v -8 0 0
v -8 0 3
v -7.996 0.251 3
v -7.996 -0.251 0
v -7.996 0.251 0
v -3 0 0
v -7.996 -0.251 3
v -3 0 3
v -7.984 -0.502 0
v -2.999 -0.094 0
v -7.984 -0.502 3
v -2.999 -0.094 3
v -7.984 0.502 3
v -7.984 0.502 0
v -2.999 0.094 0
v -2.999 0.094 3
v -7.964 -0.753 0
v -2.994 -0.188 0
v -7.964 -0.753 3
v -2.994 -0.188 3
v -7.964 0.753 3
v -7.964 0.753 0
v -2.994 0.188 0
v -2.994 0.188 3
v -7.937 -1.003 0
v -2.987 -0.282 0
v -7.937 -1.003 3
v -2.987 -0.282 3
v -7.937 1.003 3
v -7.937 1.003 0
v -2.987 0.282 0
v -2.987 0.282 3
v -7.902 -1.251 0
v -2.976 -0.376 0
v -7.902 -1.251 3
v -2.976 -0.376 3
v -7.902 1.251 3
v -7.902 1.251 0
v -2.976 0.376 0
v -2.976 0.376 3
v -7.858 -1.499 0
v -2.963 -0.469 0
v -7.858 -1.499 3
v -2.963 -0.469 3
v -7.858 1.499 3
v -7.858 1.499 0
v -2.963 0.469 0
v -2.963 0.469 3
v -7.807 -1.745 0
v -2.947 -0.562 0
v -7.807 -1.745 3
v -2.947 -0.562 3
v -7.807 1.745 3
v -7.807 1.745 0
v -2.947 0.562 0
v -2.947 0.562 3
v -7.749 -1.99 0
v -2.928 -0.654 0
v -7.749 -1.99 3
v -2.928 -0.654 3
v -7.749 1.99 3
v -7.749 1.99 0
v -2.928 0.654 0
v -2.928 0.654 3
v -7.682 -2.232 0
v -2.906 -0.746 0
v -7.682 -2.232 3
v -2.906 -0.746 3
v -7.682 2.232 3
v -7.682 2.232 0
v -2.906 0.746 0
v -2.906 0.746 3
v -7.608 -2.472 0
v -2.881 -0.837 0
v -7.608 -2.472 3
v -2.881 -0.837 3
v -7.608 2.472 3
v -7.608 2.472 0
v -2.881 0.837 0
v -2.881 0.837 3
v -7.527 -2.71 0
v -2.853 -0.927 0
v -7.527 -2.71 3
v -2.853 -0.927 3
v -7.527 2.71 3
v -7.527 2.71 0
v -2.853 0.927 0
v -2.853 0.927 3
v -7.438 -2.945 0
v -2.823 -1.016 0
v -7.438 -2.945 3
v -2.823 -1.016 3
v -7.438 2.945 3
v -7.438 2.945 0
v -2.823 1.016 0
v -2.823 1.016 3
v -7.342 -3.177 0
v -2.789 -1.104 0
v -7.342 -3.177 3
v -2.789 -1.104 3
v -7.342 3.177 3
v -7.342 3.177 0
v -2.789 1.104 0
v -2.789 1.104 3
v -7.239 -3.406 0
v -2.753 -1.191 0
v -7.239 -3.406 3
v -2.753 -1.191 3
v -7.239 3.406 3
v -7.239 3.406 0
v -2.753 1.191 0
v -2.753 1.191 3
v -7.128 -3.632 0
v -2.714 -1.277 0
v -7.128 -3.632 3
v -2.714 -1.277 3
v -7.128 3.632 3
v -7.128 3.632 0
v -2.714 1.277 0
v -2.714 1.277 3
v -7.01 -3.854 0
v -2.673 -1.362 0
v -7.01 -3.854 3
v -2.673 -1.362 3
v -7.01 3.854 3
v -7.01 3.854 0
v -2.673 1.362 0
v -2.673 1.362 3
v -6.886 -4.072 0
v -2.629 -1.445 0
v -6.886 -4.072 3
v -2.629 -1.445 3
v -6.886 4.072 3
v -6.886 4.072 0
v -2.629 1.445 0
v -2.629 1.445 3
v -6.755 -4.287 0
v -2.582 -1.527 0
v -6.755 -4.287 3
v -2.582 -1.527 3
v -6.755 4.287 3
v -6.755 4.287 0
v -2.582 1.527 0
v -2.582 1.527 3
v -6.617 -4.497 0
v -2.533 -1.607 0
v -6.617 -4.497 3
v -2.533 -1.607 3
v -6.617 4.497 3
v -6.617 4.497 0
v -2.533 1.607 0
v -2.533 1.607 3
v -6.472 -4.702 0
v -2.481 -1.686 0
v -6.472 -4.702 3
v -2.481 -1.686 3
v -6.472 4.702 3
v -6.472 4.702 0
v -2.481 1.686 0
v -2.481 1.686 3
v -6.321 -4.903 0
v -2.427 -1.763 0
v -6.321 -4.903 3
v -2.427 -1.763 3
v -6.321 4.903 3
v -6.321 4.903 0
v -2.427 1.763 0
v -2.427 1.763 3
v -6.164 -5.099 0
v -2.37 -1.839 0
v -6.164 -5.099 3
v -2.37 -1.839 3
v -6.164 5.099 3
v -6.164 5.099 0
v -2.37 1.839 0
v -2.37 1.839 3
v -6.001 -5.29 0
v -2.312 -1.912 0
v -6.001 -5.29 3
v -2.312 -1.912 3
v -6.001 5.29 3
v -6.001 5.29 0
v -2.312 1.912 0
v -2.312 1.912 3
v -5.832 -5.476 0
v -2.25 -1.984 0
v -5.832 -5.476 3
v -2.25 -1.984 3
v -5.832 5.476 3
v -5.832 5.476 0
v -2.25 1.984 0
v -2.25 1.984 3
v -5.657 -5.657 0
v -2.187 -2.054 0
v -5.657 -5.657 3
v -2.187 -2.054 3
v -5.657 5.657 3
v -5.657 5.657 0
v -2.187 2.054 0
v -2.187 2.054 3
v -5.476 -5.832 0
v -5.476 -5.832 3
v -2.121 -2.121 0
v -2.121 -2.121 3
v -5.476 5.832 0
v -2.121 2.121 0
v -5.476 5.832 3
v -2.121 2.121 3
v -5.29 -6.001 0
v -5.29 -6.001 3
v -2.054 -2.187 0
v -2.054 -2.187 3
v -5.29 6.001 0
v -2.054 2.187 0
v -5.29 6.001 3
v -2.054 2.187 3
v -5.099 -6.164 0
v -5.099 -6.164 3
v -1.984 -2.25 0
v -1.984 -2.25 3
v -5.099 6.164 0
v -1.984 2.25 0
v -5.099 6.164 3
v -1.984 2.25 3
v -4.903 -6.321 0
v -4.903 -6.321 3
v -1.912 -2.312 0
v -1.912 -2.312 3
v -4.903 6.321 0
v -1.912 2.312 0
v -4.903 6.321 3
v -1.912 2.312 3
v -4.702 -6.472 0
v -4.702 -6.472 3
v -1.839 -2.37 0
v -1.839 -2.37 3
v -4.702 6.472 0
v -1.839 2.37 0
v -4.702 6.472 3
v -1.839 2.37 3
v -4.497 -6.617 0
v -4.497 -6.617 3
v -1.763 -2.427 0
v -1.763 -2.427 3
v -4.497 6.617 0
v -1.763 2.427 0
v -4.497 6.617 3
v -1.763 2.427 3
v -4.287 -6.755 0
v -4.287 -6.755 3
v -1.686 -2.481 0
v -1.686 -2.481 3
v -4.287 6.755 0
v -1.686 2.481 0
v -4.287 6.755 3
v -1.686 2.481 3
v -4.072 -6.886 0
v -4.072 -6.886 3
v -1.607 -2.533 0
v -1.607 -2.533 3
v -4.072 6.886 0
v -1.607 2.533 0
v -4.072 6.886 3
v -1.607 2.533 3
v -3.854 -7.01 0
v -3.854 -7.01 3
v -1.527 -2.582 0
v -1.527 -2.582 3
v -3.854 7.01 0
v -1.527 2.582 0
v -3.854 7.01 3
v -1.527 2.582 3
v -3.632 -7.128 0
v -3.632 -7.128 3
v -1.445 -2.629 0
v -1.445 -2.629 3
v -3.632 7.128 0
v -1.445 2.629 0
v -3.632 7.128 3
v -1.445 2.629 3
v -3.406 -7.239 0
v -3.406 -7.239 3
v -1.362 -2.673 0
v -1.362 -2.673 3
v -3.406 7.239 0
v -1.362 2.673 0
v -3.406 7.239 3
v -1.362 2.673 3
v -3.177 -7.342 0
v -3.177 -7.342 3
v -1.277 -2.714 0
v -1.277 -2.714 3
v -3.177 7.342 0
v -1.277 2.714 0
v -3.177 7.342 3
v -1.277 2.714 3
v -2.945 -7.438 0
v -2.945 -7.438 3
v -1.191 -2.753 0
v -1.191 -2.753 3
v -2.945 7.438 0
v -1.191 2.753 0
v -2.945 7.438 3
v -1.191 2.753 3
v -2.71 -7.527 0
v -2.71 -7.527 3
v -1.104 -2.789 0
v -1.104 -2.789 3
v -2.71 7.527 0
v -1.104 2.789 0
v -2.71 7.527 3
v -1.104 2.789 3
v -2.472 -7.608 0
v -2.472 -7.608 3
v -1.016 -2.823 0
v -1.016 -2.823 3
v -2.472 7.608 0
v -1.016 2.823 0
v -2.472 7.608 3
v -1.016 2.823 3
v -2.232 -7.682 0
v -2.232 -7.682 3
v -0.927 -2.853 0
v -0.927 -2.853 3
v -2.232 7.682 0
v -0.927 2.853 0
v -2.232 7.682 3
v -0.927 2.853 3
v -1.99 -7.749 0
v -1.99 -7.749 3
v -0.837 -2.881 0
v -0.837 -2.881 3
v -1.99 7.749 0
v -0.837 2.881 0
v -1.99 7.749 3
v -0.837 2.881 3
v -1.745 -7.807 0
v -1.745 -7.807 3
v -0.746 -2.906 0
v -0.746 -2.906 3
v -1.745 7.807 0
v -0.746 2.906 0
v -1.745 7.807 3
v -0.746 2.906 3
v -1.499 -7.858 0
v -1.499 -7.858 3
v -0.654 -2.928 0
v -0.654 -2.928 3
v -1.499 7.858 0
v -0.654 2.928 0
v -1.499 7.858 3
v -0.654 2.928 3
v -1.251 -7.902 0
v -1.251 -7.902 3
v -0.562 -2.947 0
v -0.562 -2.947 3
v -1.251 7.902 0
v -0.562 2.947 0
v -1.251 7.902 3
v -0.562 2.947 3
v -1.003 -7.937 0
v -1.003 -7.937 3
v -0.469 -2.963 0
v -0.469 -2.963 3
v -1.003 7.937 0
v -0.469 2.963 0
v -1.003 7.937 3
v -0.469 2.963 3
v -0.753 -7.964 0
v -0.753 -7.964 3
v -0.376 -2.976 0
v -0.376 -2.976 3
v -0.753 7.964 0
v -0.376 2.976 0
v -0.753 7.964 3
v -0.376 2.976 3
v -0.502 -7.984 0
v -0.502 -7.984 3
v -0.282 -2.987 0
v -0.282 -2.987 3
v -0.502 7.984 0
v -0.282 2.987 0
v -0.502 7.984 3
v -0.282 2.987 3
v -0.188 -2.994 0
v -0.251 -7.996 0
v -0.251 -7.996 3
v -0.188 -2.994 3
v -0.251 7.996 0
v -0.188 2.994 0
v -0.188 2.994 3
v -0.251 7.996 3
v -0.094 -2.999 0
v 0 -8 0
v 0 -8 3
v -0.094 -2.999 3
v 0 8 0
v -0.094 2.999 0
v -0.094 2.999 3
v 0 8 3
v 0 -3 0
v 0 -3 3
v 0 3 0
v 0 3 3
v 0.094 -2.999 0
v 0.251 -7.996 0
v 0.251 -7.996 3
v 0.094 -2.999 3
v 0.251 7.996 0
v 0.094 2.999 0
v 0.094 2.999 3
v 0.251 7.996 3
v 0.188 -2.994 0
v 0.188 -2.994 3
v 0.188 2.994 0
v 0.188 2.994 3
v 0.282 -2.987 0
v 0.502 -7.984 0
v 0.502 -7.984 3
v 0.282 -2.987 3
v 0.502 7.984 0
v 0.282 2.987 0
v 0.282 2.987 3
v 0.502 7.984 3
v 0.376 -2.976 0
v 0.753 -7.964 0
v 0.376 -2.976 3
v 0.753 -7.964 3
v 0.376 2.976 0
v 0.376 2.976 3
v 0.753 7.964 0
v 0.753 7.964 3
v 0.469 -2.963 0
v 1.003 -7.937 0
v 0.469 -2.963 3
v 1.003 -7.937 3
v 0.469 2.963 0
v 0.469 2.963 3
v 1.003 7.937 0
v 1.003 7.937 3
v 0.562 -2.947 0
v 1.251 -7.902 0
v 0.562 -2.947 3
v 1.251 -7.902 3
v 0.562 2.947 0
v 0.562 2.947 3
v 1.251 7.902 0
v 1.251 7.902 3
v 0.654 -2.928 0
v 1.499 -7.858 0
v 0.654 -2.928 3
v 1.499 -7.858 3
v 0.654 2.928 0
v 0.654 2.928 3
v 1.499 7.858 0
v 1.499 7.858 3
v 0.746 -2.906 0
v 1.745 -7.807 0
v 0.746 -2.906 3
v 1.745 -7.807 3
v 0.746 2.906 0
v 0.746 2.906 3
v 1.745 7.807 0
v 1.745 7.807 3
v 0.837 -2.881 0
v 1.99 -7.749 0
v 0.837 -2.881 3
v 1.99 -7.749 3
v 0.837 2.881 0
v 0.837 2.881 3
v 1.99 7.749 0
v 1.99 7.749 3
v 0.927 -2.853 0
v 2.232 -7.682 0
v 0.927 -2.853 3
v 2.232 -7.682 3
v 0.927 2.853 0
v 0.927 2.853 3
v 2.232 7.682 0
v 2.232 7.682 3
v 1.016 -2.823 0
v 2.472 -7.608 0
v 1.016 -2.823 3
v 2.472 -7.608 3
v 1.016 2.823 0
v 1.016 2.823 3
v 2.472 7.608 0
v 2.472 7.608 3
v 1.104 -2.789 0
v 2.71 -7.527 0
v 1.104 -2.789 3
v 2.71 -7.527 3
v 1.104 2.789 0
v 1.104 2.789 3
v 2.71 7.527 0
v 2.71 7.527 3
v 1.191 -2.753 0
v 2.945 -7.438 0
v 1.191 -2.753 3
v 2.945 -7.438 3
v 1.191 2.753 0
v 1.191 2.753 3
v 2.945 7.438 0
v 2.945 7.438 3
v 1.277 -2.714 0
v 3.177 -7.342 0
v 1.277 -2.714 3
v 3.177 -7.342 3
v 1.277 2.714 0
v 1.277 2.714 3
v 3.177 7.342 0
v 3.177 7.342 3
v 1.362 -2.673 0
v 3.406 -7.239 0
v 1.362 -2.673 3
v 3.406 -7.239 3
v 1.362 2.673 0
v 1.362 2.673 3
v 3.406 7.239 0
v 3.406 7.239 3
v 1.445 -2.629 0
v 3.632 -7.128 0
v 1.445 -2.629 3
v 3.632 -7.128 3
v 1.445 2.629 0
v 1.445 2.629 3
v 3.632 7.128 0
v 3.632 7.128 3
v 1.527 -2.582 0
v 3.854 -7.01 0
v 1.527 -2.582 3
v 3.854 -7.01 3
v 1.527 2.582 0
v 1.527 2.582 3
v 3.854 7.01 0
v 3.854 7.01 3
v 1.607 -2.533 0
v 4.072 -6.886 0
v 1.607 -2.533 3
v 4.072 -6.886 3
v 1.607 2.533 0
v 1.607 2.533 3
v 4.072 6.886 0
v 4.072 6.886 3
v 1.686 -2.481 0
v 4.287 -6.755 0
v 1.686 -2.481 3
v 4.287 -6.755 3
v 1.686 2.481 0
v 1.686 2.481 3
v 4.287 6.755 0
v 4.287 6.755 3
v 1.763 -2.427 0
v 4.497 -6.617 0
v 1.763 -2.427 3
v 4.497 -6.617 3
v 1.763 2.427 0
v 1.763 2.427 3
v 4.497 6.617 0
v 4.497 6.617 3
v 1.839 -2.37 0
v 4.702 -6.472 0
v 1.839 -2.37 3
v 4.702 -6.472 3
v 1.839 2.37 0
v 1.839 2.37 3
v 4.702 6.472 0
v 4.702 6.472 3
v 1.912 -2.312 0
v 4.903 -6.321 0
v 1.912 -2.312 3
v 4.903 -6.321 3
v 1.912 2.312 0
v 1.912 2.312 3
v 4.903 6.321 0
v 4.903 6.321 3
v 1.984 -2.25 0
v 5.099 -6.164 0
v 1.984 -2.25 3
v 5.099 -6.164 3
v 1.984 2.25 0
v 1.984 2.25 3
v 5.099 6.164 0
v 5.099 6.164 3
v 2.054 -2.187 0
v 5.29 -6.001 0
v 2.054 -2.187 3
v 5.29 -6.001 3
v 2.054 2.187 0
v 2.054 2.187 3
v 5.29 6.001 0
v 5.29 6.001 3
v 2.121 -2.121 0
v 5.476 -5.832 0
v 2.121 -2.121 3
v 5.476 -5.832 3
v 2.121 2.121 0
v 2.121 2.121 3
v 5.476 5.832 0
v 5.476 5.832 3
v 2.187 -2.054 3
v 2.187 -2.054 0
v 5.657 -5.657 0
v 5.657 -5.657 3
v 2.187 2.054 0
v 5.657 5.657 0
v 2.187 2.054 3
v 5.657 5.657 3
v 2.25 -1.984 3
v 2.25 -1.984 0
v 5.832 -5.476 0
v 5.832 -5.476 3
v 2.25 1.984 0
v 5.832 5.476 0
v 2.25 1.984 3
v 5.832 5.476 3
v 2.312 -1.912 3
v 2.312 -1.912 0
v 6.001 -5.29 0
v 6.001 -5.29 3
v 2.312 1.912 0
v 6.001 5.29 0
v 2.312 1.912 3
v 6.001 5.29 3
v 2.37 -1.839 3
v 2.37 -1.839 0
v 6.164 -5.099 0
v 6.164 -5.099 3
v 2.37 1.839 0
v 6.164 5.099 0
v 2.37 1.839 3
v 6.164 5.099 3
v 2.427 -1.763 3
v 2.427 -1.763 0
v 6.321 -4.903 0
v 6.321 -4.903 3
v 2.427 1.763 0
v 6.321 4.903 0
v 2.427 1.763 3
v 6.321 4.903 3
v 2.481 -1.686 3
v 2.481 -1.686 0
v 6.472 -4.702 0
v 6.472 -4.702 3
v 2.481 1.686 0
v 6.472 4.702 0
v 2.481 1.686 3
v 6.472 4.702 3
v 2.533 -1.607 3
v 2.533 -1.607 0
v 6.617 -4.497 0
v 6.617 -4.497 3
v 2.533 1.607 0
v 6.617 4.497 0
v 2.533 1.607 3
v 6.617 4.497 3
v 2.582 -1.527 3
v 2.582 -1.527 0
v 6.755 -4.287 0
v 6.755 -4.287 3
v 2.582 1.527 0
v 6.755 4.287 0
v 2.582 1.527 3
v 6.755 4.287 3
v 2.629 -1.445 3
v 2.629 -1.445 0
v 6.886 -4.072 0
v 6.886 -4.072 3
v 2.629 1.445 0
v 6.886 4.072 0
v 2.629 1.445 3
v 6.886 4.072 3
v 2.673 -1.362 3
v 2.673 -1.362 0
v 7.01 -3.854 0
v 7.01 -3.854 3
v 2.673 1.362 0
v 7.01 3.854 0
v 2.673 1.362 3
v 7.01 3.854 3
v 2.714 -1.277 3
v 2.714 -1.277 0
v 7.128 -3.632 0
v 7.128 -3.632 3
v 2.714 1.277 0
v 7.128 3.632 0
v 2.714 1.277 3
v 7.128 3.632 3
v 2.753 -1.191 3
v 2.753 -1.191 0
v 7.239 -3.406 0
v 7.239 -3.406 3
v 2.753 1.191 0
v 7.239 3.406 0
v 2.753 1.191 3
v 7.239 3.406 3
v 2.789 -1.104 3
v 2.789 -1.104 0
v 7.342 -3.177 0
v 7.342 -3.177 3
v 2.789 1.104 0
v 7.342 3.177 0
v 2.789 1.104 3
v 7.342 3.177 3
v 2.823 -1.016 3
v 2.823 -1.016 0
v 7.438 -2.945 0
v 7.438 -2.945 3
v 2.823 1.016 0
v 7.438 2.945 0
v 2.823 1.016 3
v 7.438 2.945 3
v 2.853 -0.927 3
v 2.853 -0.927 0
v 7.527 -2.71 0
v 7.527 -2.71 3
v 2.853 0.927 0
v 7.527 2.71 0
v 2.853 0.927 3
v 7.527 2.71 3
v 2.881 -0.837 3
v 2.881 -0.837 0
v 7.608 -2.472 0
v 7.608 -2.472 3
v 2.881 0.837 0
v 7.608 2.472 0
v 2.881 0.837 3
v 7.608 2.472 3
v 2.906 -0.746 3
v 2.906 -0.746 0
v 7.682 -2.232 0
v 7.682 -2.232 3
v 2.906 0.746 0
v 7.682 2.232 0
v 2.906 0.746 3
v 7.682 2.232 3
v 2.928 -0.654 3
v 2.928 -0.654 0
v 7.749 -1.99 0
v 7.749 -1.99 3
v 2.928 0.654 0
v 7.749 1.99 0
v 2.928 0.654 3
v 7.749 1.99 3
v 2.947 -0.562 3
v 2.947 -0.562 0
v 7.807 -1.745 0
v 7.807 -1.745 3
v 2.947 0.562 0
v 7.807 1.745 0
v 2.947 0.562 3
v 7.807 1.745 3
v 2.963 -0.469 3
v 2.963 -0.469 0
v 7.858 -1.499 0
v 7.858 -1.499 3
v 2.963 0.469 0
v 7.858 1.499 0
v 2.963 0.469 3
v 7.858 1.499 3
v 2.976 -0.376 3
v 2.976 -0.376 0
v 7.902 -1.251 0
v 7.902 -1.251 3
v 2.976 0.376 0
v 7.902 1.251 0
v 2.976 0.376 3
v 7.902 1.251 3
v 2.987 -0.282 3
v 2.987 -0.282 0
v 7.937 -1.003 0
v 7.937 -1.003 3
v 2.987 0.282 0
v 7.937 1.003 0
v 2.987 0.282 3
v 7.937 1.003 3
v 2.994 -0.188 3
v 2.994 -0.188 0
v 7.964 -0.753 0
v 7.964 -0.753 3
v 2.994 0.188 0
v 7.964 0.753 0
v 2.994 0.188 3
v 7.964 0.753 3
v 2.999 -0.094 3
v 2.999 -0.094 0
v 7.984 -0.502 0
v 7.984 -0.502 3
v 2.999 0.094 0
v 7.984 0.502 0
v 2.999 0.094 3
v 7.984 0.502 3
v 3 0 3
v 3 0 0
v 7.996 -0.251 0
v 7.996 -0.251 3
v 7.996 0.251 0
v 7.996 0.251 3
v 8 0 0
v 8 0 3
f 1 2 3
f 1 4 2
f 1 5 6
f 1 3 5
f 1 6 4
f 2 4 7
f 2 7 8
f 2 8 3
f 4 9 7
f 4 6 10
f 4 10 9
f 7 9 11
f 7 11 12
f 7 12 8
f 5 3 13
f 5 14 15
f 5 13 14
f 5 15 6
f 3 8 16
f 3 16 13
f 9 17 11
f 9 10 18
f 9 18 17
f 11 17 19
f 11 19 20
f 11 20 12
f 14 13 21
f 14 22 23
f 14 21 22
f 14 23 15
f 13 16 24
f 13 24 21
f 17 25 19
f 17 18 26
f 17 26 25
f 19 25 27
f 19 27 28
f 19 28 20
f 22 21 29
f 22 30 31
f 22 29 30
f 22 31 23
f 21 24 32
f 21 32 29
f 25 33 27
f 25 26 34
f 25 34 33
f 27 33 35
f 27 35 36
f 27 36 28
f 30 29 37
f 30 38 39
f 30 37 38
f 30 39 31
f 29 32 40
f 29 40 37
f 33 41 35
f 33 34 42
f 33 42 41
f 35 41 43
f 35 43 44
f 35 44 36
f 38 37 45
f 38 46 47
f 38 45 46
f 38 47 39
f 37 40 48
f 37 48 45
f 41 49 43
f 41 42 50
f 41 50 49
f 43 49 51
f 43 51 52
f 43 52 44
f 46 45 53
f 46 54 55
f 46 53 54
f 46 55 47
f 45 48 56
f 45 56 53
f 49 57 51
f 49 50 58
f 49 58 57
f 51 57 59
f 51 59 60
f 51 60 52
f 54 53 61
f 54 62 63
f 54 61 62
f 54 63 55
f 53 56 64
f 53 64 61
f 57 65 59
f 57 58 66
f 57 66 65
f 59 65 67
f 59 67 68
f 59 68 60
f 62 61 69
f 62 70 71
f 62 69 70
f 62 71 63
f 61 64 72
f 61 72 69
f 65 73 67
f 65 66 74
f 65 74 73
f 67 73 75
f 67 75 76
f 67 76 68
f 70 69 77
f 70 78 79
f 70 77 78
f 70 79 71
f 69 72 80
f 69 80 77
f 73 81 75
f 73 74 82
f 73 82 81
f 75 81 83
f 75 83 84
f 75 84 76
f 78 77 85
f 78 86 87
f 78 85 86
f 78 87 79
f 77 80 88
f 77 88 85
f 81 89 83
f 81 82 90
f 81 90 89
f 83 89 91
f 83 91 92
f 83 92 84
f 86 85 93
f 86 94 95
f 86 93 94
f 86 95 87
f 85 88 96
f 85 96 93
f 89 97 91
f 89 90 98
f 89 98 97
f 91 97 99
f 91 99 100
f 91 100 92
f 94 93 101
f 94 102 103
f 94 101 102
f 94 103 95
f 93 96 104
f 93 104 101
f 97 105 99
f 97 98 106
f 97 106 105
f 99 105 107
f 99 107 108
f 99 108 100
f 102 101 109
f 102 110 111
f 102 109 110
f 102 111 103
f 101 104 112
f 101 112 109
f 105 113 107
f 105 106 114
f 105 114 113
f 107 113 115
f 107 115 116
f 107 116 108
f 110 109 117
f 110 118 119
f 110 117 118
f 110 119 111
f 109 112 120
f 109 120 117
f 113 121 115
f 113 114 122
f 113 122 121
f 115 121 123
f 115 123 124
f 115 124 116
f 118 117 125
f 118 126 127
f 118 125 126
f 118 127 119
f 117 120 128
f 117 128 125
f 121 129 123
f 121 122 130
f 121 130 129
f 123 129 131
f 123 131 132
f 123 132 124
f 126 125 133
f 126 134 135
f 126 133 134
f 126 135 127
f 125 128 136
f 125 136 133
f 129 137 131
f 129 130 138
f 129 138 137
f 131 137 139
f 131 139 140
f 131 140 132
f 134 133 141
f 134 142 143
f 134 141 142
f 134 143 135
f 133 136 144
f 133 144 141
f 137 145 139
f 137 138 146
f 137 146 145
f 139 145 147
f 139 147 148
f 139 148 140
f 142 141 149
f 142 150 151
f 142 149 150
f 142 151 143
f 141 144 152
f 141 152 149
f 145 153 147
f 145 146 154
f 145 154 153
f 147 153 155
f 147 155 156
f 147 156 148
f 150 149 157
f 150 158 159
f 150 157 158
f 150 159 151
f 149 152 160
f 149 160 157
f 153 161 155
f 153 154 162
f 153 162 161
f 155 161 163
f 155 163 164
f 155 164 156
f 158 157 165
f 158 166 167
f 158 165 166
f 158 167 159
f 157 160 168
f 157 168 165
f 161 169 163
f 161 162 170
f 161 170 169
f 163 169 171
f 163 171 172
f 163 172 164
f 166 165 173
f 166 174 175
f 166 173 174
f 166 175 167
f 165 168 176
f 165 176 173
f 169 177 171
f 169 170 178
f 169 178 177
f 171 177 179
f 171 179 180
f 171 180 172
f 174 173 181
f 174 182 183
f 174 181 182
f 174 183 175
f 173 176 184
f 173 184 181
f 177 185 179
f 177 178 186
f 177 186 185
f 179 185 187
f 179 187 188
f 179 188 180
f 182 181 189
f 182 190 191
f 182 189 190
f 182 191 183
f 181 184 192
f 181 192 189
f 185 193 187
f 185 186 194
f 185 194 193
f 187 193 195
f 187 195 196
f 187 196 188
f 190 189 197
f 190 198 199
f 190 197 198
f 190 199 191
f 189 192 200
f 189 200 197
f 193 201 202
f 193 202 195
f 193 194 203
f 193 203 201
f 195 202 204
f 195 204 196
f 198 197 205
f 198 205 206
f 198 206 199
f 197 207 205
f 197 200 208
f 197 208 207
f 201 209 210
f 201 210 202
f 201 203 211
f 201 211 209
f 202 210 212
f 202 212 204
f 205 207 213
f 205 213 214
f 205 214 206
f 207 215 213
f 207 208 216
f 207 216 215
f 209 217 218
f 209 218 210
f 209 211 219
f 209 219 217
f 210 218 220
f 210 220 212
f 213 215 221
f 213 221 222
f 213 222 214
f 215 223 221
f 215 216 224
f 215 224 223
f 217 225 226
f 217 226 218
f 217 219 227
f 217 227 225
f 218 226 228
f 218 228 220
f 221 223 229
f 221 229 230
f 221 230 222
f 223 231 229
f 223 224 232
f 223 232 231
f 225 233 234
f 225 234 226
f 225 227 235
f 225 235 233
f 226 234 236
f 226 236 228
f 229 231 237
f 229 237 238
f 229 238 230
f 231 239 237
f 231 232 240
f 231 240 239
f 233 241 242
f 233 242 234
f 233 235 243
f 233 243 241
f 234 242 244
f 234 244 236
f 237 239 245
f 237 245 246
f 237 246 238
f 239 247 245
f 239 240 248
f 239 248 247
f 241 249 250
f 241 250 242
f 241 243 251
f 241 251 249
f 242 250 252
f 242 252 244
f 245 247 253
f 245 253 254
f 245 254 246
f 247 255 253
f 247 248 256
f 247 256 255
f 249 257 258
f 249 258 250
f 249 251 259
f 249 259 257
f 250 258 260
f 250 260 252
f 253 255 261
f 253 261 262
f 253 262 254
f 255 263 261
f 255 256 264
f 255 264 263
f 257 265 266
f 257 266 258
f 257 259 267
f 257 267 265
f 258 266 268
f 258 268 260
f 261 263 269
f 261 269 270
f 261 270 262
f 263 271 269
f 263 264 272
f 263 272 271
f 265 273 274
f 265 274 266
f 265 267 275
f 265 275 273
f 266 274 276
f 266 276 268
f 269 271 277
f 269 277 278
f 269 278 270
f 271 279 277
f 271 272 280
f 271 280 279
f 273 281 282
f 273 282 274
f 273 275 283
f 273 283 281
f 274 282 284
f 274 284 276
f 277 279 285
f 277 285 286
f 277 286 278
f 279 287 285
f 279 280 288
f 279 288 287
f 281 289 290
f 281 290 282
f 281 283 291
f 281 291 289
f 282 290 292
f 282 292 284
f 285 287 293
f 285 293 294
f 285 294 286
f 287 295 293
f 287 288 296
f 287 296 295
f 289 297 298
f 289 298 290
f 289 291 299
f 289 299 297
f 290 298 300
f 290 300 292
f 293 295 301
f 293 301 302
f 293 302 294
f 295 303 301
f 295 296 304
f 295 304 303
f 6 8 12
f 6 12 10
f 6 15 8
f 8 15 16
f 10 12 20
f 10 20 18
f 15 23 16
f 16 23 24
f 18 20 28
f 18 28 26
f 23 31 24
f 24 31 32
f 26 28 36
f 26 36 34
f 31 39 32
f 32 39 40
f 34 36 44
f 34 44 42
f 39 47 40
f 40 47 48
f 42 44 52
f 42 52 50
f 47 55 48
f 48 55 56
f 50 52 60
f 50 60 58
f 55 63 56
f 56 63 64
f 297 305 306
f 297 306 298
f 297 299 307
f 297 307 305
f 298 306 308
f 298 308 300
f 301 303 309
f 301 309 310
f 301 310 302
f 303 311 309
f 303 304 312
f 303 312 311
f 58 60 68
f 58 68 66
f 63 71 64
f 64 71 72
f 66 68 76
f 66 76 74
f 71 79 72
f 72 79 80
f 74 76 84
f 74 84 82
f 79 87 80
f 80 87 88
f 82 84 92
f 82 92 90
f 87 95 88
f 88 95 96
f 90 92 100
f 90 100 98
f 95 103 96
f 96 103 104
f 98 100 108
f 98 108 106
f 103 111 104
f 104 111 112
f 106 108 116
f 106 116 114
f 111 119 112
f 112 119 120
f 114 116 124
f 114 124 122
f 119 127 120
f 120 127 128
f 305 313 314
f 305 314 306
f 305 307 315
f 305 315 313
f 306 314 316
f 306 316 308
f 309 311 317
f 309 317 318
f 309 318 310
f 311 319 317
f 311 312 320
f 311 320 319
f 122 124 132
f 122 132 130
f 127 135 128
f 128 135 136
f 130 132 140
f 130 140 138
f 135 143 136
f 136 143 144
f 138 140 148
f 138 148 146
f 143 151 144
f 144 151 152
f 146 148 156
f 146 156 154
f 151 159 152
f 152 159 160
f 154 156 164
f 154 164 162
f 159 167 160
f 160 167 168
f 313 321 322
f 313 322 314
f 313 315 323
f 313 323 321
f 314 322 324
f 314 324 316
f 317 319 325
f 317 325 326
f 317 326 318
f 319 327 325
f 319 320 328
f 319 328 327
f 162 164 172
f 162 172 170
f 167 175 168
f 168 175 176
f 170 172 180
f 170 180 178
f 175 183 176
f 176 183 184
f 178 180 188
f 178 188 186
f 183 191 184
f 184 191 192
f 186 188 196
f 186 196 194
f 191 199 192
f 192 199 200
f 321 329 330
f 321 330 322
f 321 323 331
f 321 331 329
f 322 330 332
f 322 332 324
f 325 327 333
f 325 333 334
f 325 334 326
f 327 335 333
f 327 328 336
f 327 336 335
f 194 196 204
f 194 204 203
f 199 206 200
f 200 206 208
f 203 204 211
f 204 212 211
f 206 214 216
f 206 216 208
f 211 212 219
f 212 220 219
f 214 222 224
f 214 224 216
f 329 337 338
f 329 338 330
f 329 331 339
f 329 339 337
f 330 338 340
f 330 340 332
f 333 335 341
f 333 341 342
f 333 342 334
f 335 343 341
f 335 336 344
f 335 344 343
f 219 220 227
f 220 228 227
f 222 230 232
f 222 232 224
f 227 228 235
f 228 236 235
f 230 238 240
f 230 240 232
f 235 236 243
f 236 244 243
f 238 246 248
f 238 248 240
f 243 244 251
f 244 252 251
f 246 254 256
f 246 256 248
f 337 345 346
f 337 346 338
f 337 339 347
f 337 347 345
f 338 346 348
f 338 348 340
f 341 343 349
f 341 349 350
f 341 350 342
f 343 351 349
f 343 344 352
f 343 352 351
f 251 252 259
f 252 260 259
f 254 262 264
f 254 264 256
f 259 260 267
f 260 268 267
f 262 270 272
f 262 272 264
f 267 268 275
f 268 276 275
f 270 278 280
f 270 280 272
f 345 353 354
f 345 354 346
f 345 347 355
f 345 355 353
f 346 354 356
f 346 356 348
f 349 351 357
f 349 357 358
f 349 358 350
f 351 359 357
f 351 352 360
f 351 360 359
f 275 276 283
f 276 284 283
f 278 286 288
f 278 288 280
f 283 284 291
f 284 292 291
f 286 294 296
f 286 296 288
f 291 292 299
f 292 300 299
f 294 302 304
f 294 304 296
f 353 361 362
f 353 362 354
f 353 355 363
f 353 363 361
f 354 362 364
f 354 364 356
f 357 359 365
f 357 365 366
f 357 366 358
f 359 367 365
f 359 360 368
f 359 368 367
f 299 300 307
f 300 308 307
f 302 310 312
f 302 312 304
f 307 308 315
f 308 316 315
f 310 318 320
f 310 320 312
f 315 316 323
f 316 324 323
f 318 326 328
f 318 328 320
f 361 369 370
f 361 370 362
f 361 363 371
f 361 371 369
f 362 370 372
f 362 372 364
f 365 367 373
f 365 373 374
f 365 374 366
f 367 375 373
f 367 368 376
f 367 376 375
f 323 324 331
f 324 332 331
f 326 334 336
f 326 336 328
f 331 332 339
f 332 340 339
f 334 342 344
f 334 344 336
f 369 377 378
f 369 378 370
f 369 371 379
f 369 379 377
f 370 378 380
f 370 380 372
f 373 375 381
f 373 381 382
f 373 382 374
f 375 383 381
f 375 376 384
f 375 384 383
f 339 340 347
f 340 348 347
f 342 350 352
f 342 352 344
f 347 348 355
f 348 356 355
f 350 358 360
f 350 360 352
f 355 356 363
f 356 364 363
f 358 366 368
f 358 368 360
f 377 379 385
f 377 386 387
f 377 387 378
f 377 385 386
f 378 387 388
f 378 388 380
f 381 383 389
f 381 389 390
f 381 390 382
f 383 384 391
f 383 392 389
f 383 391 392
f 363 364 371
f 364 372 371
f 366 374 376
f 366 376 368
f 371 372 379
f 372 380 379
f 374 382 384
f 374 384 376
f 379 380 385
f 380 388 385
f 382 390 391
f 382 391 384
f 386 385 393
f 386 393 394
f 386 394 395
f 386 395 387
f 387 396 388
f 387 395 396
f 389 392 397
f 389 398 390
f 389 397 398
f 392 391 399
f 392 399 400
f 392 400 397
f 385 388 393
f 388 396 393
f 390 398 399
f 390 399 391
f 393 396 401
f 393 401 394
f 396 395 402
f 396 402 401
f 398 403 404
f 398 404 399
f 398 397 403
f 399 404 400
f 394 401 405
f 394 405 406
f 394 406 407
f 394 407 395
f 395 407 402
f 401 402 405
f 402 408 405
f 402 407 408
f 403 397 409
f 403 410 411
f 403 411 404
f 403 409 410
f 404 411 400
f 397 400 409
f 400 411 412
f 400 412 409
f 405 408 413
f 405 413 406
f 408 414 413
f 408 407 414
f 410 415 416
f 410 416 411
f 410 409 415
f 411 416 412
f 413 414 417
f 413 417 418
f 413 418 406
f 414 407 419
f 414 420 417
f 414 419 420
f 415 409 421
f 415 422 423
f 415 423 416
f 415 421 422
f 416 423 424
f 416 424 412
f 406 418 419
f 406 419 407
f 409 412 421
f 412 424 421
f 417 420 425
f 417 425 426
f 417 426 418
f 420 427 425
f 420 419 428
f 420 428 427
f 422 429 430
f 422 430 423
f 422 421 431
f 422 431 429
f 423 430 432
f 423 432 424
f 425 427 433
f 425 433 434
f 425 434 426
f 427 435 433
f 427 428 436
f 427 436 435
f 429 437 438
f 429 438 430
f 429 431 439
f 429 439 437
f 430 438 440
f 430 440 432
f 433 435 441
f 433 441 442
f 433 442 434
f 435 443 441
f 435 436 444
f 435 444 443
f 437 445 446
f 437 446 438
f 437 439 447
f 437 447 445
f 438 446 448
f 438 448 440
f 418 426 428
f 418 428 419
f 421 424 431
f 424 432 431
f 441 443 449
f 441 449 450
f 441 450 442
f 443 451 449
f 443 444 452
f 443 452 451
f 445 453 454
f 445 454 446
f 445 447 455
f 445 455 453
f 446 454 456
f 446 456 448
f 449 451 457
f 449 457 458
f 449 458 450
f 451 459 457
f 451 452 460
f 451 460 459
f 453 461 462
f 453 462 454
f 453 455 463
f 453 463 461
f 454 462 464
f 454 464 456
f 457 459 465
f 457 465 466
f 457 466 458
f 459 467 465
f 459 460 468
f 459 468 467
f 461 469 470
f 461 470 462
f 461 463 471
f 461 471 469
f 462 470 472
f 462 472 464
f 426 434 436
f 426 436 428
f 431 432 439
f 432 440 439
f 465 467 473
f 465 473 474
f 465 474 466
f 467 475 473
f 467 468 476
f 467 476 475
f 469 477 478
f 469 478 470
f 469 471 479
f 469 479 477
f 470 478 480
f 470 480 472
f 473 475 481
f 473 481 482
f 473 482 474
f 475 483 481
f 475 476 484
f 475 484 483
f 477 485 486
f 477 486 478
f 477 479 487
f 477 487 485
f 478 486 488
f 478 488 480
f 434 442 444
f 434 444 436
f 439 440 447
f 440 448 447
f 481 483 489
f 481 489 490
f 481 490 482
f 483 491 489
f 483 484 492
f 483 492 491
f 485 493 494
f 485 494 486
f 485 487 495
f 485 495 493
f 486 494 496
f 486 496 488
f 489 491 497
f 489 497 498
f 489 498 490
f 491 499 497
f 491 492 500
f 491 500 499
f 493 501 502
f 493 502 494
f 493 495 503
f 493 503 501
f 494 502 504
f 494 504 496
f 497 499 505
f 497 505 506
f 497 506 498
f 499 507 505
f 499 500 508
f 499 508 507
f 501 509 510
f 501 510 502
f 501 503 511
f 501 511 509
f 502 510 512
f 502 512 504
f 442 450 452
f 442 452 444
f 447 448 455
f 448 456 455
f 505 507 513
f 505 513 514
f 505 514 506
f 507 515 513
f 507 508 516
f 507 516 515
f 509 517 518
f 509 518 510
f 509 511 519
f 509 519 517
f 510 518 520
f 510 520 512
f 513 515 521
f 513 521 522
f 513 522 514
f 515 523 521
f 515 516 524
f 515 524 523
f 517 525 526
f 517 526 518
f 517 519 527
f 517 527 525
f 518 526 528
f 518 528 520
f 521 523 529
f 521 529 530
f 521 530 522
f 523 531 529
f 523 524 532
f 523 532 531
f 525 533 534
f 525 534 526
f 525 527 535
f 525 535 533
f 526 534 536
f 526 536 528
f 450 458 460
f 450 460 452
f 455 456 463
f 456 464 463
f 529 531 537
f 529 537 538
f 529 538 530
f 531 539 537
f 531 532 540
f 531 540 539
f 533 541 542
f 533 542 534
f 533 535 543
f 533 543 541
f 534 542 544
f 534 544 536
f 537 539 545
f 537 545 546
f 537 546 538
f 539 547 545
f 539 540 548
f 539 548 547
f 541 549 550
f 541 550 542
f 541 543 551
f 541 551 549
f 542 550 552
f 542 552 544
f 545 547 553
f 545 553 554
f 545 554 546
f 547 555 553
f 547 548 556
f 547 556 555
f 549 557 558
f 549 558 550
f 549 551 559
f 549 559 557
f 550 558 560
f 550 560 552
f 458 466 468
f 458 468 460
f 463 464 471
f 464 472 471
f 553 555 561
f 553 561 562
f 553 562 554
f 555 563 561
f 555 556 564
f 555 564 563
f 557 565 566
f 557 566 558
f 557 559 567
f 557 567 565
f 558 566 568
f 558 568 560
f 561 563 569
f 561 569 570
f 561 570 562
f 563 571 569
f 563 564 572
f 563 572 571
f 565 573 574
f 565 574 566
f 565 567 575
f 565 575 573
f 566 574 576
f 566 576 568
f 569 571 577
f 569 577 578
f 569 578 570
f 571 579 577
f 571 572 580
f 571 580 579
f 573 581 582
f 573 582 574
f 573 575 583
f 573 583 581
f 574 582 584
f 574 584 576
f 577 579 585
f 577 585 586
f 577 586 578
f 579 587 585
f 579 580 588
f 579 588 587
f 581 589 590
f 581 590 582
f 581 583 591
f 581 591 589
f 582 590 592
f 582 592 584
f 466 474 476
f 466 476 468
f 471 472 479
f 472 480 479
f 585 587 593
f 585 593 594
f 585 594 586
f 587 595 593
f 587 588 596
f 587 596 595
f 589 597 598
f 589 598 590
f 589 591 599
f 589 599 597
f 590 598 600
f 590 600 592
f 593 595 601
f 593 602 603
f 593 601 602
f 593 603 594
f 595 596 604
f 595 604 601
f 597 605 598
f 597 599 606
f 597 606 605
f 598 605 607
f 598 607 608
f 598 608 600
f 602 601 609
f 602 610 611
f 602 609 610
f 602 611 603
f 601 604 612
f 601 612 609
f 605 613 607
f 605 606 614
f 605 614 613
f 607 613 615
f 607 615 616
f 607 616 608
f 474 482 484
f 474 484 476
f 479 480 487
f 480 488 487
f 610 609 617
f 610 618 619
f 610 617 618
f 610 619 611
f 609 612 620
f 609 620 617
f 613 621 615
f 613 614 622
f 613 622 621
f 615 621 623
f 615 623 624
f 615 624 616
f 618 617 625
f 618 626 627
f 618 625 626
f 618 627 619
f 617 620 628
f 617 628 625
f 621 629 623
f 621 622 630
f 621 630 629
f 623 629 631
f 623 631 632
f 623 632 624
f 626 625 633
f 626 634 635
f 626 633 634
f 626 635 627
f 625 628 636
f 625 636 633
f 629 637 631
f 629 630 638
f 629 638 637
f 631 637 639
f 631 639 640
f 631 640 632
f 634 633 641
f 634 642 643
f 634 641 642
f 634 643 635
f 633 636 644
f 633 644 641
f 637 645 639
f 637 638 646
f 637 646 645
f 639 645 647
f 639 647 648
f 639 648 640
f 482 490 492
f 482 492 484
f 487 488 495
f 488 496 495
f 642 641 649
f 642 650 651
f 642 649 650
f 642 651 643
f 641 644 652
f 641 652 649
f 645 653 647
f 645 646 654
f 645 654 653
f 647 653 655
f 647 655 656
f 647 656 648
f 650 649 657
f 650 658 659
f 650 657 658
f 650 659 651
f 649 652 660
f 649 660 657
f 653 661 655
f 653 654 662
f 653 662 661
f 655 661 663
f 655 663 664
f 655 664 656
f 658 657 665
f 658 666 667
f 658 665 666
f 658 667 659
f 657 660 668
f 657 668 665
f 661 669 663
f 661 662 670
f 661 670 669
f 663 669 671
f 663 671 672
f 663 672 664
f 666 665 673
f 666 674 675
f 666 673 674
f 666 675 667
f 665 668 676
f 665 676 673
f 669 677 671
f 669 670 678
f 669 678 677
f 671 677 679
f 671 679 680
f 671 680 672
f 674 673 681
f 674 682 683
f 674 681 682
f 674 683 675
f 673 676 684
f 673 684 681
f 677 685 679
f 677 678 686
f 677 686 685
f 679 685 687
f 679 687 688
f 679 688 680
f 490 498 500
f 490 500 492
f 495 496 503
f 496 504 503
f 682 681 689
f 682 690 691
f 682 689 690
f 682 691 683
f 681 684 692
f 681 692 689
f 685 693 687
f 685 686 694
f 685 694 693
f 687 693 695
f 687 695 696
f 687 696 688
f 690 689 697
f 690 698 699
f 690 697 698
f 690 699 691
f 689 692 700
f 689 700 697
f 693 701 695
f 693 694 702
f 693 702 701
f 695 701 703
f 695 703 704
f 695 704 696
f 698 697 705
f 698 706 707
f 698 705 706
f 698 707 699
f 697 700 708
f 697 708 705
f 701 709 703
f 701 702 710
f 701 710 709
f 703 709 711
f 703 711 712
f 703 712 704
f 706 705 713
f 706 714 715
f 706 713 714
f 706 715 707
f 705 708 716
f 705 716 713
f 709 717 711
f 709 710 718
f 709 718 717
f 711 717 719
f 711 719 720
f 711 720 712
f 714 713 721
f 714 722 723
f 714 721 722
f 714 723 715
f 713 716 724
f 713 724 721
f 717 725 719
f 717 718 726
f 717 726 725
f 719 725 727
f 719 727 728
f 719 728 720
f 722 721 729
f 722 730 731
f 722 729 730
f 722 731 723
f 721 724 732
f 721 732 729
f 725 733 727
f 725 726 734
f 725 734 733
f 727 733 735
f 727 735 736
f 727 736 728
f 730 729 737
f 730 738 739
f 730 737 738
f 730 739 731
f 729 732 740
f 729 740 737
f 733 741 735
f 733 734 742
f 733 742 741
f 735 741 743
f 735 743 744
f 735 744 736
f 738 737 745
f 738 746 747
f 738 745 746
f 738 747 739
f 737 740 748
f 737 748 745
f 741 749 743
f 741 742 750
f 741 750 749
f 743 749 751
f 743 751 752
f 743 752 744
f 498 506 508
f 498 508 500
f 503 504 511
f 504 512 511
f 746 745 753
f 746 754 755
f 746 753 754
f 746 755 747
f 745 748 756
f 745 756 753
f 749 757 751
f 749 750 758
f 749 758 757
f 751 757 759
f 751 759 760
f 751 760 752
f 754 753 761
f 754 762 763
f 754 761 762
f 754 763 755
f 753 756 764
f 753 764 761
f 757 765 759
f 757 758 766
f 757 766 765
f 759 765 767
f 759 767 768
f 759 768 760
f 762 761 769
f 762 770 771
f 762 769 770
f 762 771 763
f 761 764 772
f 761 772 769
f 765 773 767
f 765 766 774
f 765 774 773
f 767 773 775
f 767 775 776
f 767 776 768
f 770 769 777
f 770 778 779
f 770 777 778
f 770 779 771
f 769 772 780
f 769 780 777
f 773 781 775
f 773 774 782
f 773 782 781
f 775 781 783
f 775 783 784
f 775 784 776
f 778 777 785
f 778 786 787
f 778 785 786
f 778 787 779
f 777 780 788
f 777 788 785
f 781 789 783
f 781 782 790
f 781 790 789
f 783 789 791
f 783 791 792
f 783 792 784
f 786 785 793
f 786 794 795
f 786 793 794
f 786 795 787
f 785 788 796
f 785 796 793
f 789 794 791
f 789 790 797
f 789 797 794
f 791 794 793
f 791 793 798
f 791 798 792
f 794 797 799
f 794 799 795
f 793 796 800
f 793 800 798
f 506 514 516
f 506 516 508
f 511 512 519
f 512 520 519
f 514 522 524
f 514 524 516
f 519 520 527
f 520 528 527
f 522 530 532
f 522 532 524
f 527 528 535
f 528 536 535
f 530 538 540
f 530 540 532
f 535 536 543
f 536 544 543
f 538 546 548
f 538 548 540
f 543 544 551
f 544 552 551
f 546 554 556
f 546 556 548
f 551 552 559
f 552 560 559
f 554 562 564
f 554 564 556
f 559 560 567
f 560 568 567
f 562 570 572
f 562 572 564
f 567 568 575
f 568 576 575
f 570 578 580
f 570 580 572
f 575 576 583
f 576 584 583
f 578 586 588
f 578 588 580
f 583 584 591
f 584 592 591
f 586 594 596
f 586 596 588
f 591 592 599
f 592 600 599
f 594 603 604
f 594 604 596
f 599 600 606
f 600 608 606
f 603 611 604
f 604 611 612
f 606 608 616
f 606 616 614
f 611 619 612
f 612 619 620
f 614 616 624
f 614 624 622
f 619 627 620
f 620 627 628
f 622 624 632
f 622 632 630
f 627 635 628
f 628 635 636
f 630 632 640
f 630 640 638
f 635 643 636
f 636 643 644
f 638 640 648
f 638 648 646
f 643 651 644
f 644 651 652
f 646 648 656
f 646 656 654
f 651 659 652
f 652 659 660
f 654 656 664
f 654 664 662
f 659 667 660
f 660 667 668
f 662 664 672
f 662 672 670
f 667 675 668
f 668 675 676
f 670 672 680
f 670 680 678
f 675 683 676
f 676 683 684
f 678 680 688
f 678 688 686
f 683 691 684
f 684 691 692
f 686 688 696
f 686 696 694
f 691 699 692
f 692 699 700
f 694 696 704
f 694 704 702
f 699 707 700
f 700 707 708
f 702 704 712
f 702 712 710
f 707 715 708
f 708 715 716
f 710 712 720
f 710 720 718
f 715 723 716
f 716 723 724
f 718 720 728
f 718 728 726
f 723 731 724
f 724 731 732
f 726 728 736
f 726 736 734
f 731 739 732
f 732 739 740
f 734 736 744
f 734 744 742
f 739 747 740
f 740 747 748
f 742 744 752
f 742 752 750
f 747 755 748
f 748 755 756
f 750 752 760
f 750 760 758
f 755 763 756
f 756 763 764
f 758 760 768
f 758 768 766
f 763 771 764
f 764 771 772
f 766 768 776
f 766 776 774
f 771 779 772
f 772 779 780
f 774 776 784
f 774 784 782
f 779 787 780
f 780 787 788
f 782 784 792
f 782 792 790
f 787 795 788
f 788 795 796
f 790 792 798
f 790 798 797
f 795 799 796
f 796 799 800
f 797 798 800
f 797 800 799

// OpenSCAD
$fn=200;
difference(){
    cylinder(d=16,h=3);
    cylinder(d=6,h=30,center=true);
}
